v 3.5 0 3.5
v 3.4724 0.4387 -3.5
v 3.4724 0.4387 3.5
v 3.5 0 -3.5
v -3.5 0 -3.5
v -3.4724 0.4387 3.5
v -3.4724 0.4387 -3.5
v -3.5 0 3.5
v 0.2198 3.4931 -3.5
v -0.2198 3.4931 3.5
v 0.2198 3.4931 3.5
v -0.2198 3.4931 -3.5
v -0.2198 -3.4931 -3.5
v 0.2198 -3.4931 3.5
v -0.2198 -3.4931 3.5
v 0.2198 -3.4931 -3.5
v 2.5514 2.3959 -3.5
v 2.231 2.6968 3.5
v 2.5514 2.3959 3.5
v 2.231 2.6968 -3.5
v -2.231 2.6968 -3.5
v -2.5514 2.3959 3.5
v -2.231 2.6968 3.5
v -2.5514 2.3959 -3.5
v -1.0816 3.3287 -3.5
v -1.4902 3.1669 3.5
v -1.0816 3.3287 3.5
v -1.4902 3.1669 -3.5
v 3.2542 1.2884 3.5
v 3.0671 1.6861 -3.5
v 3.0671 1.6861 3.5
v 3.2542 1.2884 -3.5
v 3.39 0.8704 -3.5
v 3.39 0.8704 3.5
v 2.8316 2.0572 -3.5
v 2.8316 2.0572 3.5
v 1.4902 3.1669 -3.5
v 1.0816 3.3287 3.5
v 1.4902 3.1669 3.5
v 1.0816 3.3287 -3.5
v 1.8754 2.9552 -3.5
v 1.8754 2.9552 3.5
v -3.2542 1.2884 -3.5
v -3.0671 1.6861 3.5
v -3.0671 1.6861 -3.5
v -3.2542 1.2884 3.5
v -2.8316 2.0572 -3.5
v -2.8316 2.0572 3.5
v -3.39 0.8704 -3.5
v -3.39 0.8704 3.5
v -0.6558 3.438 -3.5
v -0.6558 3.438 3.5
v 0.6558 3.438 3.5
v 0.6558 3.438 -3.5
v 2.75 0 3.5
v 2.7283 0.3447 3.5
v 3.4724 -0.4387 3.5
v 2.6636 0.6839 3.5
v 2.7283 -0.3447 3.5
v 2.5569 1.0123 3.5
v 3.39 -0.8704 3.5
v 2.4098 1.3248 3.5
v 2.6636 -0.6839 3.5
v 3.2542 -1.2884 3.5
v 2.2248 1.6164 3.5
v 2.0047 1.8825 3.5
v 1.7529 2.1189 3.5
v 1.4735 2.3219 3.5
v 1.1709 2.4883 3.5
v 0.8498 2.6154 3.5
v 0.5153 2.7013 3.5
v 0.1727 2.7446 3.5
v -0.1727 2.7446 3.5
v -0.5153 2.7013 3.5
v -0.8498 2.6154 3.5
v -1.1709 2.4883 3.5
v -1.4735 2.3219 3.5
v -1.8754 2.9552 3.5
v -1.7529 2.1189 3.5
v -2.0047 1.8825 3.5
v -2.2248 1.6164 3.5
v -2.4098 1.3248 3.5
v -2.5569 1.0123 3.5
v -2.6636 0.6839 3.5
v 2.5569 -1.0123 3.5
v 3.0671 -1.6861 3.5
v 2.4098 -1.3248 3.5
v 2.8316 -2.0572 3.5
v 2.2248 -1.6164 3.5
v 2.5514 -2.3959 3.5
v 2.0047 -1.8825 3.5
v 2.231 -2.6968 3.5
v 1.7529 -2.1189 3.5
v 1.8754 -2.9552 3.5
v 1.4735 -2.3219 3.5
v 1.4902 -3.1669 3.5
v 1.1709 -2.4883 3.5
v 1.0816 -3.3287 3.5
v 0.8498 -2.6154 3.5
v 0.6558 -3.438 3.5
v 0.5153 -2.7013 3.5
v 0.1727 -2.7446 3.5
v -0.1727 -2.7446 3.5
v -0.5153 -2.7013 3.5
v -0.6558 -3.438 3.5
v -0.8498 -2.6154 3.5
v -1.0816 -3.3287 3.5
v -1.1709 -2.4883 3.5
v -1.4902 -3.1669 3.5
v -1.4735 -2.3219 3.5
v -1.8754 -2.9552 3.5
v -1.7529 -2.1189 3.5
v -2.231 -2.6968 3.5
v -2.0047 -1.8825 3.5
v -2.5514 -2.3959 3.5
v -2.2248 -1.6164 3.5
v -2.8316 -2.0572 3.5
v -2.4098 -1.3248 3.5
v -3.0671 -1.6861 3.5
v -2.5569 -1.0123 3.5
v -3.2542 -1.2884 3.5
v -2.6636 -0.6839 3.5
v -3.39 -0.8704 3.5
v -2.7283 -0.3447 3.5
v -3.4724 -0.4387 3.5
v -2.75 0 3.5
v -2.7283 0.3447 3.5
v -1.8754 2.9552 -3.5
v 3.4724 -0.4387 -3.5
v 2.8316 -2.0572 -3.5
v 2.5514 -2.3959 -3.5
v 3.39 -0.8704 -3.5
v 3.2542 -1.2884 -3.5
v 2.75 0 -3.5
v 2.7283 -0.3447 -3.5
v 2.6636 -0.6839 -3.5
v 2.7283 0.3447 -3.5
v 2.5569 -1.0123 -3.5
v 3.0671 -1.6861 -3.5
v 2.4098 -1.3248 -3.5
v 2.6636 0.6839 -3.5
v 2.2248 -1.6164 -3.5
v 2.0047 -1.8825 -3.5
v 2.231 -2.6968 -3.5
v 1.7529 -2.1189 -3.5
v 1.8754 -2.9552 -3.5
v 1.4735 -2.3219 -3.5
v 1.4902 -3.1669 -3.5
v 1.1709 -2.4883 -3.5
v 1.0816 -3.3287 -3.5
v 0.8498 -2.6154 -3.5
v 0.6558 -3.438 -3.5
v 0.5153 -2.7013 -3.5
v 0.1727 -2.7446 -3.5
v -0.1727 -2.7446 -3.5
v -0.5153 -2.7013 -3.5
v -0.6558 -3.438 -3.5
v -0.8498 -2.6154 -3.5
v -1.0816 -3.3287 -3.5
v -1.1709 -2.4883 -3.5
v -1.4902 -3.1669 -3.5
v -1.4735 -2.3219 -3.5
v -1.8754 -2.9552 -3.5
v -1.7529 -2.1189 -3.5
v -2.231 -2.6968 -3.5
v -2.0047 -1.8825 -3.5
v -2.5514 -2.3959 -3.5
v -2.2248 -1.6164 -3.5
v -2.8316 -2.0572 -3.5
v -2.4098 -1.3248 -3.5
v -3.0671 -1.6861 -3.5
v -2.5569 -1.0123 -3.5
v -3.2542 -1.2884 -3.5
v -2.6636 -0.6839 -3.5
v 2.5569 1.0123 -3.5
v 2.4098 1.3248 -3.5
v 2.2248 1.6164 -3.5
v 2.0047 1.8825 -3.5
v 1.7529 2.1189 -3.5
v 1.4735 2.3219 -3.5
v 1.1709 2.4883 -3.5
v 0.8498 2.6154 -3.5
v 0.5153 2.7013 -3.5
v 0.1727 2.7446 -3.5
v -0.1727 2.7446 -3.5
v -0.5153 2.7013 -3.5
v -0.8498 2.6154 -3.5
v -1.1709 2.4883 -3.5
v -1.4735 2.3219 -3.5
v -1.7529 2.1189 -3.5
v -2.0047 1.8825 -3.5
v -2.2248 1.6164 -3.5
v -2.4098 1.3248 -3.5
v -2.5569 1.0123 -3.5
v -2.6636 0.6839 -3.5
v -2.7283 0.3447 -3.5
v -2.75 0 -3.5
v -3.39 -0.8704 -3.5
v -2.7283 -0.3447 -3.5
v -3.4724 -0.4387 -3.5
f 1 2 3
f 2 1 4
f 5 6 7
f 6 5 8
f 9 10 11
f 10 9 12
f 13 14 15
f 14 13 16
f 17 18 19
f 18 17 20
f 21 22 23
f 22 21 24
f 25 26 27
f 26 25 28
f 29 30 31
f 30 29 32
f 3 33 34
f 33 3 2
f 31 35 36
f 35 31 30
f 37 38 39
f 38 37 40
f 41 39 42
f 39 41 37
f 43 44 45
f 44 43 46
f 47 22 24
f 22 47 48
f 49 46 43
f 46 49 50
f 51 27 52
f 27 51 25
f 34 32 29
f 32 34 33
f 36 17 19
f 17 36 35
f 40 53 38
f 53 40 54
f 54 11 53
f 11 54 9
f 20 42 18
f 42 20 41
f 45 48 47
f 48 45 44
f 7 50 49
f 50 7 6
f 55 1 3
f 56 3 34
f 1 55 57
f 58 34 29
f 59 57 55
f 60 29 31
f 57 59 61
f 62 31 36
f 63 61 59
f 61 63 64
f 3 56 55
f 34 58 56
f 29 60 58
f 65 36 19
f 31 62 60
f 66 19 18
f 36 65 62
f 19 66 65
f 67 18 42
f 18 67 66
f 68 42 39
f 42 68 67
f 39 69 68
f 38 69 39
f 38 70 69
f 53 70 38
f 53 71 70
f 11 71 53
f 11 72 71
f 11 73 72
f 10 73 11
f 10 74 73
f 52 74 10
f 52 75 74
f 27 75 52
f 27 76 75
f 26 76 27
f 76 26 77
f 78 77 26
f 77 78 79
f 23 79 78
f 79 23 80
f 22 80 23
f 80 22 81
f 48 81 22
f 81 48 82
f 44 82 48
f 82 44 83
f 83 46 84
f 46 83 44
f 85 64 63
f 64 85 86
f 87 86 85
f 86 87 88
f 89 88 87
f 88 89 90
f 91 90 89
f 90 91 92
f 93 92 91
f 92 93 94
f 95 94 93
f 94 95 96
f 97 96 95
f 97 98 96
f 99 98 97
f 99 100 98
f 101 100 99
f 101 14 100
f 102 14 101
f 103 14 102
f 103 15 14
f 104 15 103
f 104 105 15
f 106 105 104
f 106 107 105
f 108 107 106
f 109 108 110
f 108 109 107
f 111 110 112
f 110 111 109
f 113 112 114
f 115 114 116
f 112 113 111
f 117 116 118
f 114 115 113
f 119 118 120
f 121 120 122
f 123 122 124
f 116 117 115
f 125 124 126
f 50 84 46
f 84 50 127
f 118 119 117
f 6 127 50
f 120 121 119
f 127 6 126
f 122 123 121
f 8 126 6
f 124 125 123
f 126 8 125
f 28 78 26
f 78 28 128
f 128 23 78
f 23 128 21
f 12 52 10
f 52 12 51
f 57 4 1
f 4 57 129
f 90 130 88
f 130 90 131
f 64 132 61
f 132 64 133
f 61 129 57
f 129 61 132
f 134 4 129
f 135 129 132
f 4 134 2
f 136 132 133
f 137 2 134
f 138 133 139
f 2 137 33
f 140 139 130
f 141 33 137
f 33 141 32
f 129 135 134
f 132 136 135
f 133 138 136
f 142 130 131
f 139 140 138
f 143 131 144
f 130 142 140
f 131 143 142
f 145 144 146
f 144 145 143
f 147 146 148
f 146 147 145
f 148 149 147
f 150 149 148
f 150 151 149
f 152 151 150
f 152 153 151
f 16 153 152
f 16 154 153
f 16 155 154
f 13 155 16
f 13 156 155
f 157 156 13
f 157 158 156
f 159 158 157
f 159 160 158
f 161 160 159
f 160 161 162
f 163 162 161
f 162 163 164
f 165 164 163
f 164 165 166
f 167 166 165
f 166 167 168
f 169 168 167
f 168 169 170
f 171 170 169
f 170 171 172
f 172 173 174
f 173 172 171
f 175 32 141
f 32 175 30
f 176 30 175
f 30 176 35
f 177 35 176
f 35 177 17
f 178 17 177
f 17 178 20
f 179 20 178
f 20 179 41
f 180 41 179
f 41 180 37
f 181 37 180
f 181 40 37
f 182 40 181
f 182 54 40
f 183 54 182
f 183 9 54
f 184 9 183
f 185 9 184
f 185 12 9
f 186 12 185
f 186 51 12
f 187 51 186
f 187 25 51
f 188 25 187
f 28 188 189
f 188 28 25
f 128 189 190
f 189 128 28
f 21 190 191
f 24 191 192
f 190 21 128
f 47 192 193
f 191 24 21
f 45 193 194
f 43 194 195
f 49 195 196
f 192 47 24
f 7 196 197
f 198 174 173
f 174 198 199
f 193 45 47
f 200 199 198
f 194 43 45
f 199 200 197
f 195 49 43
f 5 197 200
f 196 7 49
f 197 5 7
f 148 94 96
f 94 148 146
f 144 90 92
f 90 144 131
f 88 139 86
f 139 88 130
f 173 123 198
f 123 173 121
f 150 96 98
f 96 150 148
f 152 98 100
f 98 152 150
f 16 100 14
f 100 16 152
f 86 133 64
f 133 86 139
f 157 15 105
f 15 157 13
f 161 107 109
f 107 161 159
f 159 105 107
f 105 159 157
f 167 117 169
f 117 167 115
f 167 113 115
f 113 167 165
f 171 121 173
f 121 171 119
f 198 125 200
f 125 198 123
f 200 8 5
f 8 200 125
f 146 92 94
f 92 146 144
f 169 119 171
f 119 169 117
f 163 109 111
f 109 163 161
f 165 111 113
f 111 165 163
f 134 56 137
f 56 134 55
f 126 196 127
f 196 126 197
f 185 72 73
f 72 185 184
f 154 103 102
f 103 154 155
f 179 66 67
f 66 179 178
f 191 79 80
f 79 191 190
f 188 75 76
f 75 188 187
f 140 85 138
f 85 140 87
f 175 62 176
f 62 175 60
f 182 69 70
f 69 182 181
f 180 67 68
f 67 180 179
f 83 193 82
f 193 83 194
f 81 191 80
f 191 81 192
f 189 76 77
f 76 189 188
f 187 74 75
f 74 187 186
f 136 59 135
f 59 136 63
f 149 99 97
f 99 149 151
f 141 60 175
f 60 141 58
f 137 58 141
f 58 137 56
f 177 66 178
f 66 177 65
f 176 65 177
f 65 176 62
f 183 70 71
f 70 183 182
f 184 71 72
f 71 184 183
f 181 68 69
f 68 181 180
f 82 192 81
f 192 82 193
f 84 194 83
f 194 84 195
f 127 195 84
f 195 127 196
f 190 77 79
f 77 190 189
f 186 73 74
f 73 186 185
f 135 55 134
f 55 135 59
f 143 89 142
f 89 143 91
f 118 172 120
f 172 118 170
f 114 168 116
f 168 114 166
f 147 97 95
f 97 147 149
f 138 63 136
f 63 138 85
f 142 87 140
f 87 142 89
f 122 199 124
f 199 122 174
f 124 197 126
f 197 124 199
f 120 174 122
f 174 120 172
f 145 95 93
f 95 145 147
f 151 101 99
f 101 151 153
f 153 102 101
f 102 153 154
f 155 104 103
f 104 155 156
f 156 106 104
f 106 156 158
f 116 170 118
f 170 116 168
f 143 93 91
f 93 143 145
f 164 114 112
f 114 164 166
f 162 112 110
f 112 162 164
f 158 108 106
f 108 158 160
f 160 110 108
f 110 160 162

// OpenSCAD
$fn = 50;


difference() {
	union() {
		translate(v = [0, 0, -3.5000000000]) {
			cylinder(h = 7, r = 3.5000000000);
		}
	}
	union() {
		translate(v = [0, 0, -100.0000000000]) {
			cylinder(h = 200, r = 2.7500000000);
		}
	}
}
